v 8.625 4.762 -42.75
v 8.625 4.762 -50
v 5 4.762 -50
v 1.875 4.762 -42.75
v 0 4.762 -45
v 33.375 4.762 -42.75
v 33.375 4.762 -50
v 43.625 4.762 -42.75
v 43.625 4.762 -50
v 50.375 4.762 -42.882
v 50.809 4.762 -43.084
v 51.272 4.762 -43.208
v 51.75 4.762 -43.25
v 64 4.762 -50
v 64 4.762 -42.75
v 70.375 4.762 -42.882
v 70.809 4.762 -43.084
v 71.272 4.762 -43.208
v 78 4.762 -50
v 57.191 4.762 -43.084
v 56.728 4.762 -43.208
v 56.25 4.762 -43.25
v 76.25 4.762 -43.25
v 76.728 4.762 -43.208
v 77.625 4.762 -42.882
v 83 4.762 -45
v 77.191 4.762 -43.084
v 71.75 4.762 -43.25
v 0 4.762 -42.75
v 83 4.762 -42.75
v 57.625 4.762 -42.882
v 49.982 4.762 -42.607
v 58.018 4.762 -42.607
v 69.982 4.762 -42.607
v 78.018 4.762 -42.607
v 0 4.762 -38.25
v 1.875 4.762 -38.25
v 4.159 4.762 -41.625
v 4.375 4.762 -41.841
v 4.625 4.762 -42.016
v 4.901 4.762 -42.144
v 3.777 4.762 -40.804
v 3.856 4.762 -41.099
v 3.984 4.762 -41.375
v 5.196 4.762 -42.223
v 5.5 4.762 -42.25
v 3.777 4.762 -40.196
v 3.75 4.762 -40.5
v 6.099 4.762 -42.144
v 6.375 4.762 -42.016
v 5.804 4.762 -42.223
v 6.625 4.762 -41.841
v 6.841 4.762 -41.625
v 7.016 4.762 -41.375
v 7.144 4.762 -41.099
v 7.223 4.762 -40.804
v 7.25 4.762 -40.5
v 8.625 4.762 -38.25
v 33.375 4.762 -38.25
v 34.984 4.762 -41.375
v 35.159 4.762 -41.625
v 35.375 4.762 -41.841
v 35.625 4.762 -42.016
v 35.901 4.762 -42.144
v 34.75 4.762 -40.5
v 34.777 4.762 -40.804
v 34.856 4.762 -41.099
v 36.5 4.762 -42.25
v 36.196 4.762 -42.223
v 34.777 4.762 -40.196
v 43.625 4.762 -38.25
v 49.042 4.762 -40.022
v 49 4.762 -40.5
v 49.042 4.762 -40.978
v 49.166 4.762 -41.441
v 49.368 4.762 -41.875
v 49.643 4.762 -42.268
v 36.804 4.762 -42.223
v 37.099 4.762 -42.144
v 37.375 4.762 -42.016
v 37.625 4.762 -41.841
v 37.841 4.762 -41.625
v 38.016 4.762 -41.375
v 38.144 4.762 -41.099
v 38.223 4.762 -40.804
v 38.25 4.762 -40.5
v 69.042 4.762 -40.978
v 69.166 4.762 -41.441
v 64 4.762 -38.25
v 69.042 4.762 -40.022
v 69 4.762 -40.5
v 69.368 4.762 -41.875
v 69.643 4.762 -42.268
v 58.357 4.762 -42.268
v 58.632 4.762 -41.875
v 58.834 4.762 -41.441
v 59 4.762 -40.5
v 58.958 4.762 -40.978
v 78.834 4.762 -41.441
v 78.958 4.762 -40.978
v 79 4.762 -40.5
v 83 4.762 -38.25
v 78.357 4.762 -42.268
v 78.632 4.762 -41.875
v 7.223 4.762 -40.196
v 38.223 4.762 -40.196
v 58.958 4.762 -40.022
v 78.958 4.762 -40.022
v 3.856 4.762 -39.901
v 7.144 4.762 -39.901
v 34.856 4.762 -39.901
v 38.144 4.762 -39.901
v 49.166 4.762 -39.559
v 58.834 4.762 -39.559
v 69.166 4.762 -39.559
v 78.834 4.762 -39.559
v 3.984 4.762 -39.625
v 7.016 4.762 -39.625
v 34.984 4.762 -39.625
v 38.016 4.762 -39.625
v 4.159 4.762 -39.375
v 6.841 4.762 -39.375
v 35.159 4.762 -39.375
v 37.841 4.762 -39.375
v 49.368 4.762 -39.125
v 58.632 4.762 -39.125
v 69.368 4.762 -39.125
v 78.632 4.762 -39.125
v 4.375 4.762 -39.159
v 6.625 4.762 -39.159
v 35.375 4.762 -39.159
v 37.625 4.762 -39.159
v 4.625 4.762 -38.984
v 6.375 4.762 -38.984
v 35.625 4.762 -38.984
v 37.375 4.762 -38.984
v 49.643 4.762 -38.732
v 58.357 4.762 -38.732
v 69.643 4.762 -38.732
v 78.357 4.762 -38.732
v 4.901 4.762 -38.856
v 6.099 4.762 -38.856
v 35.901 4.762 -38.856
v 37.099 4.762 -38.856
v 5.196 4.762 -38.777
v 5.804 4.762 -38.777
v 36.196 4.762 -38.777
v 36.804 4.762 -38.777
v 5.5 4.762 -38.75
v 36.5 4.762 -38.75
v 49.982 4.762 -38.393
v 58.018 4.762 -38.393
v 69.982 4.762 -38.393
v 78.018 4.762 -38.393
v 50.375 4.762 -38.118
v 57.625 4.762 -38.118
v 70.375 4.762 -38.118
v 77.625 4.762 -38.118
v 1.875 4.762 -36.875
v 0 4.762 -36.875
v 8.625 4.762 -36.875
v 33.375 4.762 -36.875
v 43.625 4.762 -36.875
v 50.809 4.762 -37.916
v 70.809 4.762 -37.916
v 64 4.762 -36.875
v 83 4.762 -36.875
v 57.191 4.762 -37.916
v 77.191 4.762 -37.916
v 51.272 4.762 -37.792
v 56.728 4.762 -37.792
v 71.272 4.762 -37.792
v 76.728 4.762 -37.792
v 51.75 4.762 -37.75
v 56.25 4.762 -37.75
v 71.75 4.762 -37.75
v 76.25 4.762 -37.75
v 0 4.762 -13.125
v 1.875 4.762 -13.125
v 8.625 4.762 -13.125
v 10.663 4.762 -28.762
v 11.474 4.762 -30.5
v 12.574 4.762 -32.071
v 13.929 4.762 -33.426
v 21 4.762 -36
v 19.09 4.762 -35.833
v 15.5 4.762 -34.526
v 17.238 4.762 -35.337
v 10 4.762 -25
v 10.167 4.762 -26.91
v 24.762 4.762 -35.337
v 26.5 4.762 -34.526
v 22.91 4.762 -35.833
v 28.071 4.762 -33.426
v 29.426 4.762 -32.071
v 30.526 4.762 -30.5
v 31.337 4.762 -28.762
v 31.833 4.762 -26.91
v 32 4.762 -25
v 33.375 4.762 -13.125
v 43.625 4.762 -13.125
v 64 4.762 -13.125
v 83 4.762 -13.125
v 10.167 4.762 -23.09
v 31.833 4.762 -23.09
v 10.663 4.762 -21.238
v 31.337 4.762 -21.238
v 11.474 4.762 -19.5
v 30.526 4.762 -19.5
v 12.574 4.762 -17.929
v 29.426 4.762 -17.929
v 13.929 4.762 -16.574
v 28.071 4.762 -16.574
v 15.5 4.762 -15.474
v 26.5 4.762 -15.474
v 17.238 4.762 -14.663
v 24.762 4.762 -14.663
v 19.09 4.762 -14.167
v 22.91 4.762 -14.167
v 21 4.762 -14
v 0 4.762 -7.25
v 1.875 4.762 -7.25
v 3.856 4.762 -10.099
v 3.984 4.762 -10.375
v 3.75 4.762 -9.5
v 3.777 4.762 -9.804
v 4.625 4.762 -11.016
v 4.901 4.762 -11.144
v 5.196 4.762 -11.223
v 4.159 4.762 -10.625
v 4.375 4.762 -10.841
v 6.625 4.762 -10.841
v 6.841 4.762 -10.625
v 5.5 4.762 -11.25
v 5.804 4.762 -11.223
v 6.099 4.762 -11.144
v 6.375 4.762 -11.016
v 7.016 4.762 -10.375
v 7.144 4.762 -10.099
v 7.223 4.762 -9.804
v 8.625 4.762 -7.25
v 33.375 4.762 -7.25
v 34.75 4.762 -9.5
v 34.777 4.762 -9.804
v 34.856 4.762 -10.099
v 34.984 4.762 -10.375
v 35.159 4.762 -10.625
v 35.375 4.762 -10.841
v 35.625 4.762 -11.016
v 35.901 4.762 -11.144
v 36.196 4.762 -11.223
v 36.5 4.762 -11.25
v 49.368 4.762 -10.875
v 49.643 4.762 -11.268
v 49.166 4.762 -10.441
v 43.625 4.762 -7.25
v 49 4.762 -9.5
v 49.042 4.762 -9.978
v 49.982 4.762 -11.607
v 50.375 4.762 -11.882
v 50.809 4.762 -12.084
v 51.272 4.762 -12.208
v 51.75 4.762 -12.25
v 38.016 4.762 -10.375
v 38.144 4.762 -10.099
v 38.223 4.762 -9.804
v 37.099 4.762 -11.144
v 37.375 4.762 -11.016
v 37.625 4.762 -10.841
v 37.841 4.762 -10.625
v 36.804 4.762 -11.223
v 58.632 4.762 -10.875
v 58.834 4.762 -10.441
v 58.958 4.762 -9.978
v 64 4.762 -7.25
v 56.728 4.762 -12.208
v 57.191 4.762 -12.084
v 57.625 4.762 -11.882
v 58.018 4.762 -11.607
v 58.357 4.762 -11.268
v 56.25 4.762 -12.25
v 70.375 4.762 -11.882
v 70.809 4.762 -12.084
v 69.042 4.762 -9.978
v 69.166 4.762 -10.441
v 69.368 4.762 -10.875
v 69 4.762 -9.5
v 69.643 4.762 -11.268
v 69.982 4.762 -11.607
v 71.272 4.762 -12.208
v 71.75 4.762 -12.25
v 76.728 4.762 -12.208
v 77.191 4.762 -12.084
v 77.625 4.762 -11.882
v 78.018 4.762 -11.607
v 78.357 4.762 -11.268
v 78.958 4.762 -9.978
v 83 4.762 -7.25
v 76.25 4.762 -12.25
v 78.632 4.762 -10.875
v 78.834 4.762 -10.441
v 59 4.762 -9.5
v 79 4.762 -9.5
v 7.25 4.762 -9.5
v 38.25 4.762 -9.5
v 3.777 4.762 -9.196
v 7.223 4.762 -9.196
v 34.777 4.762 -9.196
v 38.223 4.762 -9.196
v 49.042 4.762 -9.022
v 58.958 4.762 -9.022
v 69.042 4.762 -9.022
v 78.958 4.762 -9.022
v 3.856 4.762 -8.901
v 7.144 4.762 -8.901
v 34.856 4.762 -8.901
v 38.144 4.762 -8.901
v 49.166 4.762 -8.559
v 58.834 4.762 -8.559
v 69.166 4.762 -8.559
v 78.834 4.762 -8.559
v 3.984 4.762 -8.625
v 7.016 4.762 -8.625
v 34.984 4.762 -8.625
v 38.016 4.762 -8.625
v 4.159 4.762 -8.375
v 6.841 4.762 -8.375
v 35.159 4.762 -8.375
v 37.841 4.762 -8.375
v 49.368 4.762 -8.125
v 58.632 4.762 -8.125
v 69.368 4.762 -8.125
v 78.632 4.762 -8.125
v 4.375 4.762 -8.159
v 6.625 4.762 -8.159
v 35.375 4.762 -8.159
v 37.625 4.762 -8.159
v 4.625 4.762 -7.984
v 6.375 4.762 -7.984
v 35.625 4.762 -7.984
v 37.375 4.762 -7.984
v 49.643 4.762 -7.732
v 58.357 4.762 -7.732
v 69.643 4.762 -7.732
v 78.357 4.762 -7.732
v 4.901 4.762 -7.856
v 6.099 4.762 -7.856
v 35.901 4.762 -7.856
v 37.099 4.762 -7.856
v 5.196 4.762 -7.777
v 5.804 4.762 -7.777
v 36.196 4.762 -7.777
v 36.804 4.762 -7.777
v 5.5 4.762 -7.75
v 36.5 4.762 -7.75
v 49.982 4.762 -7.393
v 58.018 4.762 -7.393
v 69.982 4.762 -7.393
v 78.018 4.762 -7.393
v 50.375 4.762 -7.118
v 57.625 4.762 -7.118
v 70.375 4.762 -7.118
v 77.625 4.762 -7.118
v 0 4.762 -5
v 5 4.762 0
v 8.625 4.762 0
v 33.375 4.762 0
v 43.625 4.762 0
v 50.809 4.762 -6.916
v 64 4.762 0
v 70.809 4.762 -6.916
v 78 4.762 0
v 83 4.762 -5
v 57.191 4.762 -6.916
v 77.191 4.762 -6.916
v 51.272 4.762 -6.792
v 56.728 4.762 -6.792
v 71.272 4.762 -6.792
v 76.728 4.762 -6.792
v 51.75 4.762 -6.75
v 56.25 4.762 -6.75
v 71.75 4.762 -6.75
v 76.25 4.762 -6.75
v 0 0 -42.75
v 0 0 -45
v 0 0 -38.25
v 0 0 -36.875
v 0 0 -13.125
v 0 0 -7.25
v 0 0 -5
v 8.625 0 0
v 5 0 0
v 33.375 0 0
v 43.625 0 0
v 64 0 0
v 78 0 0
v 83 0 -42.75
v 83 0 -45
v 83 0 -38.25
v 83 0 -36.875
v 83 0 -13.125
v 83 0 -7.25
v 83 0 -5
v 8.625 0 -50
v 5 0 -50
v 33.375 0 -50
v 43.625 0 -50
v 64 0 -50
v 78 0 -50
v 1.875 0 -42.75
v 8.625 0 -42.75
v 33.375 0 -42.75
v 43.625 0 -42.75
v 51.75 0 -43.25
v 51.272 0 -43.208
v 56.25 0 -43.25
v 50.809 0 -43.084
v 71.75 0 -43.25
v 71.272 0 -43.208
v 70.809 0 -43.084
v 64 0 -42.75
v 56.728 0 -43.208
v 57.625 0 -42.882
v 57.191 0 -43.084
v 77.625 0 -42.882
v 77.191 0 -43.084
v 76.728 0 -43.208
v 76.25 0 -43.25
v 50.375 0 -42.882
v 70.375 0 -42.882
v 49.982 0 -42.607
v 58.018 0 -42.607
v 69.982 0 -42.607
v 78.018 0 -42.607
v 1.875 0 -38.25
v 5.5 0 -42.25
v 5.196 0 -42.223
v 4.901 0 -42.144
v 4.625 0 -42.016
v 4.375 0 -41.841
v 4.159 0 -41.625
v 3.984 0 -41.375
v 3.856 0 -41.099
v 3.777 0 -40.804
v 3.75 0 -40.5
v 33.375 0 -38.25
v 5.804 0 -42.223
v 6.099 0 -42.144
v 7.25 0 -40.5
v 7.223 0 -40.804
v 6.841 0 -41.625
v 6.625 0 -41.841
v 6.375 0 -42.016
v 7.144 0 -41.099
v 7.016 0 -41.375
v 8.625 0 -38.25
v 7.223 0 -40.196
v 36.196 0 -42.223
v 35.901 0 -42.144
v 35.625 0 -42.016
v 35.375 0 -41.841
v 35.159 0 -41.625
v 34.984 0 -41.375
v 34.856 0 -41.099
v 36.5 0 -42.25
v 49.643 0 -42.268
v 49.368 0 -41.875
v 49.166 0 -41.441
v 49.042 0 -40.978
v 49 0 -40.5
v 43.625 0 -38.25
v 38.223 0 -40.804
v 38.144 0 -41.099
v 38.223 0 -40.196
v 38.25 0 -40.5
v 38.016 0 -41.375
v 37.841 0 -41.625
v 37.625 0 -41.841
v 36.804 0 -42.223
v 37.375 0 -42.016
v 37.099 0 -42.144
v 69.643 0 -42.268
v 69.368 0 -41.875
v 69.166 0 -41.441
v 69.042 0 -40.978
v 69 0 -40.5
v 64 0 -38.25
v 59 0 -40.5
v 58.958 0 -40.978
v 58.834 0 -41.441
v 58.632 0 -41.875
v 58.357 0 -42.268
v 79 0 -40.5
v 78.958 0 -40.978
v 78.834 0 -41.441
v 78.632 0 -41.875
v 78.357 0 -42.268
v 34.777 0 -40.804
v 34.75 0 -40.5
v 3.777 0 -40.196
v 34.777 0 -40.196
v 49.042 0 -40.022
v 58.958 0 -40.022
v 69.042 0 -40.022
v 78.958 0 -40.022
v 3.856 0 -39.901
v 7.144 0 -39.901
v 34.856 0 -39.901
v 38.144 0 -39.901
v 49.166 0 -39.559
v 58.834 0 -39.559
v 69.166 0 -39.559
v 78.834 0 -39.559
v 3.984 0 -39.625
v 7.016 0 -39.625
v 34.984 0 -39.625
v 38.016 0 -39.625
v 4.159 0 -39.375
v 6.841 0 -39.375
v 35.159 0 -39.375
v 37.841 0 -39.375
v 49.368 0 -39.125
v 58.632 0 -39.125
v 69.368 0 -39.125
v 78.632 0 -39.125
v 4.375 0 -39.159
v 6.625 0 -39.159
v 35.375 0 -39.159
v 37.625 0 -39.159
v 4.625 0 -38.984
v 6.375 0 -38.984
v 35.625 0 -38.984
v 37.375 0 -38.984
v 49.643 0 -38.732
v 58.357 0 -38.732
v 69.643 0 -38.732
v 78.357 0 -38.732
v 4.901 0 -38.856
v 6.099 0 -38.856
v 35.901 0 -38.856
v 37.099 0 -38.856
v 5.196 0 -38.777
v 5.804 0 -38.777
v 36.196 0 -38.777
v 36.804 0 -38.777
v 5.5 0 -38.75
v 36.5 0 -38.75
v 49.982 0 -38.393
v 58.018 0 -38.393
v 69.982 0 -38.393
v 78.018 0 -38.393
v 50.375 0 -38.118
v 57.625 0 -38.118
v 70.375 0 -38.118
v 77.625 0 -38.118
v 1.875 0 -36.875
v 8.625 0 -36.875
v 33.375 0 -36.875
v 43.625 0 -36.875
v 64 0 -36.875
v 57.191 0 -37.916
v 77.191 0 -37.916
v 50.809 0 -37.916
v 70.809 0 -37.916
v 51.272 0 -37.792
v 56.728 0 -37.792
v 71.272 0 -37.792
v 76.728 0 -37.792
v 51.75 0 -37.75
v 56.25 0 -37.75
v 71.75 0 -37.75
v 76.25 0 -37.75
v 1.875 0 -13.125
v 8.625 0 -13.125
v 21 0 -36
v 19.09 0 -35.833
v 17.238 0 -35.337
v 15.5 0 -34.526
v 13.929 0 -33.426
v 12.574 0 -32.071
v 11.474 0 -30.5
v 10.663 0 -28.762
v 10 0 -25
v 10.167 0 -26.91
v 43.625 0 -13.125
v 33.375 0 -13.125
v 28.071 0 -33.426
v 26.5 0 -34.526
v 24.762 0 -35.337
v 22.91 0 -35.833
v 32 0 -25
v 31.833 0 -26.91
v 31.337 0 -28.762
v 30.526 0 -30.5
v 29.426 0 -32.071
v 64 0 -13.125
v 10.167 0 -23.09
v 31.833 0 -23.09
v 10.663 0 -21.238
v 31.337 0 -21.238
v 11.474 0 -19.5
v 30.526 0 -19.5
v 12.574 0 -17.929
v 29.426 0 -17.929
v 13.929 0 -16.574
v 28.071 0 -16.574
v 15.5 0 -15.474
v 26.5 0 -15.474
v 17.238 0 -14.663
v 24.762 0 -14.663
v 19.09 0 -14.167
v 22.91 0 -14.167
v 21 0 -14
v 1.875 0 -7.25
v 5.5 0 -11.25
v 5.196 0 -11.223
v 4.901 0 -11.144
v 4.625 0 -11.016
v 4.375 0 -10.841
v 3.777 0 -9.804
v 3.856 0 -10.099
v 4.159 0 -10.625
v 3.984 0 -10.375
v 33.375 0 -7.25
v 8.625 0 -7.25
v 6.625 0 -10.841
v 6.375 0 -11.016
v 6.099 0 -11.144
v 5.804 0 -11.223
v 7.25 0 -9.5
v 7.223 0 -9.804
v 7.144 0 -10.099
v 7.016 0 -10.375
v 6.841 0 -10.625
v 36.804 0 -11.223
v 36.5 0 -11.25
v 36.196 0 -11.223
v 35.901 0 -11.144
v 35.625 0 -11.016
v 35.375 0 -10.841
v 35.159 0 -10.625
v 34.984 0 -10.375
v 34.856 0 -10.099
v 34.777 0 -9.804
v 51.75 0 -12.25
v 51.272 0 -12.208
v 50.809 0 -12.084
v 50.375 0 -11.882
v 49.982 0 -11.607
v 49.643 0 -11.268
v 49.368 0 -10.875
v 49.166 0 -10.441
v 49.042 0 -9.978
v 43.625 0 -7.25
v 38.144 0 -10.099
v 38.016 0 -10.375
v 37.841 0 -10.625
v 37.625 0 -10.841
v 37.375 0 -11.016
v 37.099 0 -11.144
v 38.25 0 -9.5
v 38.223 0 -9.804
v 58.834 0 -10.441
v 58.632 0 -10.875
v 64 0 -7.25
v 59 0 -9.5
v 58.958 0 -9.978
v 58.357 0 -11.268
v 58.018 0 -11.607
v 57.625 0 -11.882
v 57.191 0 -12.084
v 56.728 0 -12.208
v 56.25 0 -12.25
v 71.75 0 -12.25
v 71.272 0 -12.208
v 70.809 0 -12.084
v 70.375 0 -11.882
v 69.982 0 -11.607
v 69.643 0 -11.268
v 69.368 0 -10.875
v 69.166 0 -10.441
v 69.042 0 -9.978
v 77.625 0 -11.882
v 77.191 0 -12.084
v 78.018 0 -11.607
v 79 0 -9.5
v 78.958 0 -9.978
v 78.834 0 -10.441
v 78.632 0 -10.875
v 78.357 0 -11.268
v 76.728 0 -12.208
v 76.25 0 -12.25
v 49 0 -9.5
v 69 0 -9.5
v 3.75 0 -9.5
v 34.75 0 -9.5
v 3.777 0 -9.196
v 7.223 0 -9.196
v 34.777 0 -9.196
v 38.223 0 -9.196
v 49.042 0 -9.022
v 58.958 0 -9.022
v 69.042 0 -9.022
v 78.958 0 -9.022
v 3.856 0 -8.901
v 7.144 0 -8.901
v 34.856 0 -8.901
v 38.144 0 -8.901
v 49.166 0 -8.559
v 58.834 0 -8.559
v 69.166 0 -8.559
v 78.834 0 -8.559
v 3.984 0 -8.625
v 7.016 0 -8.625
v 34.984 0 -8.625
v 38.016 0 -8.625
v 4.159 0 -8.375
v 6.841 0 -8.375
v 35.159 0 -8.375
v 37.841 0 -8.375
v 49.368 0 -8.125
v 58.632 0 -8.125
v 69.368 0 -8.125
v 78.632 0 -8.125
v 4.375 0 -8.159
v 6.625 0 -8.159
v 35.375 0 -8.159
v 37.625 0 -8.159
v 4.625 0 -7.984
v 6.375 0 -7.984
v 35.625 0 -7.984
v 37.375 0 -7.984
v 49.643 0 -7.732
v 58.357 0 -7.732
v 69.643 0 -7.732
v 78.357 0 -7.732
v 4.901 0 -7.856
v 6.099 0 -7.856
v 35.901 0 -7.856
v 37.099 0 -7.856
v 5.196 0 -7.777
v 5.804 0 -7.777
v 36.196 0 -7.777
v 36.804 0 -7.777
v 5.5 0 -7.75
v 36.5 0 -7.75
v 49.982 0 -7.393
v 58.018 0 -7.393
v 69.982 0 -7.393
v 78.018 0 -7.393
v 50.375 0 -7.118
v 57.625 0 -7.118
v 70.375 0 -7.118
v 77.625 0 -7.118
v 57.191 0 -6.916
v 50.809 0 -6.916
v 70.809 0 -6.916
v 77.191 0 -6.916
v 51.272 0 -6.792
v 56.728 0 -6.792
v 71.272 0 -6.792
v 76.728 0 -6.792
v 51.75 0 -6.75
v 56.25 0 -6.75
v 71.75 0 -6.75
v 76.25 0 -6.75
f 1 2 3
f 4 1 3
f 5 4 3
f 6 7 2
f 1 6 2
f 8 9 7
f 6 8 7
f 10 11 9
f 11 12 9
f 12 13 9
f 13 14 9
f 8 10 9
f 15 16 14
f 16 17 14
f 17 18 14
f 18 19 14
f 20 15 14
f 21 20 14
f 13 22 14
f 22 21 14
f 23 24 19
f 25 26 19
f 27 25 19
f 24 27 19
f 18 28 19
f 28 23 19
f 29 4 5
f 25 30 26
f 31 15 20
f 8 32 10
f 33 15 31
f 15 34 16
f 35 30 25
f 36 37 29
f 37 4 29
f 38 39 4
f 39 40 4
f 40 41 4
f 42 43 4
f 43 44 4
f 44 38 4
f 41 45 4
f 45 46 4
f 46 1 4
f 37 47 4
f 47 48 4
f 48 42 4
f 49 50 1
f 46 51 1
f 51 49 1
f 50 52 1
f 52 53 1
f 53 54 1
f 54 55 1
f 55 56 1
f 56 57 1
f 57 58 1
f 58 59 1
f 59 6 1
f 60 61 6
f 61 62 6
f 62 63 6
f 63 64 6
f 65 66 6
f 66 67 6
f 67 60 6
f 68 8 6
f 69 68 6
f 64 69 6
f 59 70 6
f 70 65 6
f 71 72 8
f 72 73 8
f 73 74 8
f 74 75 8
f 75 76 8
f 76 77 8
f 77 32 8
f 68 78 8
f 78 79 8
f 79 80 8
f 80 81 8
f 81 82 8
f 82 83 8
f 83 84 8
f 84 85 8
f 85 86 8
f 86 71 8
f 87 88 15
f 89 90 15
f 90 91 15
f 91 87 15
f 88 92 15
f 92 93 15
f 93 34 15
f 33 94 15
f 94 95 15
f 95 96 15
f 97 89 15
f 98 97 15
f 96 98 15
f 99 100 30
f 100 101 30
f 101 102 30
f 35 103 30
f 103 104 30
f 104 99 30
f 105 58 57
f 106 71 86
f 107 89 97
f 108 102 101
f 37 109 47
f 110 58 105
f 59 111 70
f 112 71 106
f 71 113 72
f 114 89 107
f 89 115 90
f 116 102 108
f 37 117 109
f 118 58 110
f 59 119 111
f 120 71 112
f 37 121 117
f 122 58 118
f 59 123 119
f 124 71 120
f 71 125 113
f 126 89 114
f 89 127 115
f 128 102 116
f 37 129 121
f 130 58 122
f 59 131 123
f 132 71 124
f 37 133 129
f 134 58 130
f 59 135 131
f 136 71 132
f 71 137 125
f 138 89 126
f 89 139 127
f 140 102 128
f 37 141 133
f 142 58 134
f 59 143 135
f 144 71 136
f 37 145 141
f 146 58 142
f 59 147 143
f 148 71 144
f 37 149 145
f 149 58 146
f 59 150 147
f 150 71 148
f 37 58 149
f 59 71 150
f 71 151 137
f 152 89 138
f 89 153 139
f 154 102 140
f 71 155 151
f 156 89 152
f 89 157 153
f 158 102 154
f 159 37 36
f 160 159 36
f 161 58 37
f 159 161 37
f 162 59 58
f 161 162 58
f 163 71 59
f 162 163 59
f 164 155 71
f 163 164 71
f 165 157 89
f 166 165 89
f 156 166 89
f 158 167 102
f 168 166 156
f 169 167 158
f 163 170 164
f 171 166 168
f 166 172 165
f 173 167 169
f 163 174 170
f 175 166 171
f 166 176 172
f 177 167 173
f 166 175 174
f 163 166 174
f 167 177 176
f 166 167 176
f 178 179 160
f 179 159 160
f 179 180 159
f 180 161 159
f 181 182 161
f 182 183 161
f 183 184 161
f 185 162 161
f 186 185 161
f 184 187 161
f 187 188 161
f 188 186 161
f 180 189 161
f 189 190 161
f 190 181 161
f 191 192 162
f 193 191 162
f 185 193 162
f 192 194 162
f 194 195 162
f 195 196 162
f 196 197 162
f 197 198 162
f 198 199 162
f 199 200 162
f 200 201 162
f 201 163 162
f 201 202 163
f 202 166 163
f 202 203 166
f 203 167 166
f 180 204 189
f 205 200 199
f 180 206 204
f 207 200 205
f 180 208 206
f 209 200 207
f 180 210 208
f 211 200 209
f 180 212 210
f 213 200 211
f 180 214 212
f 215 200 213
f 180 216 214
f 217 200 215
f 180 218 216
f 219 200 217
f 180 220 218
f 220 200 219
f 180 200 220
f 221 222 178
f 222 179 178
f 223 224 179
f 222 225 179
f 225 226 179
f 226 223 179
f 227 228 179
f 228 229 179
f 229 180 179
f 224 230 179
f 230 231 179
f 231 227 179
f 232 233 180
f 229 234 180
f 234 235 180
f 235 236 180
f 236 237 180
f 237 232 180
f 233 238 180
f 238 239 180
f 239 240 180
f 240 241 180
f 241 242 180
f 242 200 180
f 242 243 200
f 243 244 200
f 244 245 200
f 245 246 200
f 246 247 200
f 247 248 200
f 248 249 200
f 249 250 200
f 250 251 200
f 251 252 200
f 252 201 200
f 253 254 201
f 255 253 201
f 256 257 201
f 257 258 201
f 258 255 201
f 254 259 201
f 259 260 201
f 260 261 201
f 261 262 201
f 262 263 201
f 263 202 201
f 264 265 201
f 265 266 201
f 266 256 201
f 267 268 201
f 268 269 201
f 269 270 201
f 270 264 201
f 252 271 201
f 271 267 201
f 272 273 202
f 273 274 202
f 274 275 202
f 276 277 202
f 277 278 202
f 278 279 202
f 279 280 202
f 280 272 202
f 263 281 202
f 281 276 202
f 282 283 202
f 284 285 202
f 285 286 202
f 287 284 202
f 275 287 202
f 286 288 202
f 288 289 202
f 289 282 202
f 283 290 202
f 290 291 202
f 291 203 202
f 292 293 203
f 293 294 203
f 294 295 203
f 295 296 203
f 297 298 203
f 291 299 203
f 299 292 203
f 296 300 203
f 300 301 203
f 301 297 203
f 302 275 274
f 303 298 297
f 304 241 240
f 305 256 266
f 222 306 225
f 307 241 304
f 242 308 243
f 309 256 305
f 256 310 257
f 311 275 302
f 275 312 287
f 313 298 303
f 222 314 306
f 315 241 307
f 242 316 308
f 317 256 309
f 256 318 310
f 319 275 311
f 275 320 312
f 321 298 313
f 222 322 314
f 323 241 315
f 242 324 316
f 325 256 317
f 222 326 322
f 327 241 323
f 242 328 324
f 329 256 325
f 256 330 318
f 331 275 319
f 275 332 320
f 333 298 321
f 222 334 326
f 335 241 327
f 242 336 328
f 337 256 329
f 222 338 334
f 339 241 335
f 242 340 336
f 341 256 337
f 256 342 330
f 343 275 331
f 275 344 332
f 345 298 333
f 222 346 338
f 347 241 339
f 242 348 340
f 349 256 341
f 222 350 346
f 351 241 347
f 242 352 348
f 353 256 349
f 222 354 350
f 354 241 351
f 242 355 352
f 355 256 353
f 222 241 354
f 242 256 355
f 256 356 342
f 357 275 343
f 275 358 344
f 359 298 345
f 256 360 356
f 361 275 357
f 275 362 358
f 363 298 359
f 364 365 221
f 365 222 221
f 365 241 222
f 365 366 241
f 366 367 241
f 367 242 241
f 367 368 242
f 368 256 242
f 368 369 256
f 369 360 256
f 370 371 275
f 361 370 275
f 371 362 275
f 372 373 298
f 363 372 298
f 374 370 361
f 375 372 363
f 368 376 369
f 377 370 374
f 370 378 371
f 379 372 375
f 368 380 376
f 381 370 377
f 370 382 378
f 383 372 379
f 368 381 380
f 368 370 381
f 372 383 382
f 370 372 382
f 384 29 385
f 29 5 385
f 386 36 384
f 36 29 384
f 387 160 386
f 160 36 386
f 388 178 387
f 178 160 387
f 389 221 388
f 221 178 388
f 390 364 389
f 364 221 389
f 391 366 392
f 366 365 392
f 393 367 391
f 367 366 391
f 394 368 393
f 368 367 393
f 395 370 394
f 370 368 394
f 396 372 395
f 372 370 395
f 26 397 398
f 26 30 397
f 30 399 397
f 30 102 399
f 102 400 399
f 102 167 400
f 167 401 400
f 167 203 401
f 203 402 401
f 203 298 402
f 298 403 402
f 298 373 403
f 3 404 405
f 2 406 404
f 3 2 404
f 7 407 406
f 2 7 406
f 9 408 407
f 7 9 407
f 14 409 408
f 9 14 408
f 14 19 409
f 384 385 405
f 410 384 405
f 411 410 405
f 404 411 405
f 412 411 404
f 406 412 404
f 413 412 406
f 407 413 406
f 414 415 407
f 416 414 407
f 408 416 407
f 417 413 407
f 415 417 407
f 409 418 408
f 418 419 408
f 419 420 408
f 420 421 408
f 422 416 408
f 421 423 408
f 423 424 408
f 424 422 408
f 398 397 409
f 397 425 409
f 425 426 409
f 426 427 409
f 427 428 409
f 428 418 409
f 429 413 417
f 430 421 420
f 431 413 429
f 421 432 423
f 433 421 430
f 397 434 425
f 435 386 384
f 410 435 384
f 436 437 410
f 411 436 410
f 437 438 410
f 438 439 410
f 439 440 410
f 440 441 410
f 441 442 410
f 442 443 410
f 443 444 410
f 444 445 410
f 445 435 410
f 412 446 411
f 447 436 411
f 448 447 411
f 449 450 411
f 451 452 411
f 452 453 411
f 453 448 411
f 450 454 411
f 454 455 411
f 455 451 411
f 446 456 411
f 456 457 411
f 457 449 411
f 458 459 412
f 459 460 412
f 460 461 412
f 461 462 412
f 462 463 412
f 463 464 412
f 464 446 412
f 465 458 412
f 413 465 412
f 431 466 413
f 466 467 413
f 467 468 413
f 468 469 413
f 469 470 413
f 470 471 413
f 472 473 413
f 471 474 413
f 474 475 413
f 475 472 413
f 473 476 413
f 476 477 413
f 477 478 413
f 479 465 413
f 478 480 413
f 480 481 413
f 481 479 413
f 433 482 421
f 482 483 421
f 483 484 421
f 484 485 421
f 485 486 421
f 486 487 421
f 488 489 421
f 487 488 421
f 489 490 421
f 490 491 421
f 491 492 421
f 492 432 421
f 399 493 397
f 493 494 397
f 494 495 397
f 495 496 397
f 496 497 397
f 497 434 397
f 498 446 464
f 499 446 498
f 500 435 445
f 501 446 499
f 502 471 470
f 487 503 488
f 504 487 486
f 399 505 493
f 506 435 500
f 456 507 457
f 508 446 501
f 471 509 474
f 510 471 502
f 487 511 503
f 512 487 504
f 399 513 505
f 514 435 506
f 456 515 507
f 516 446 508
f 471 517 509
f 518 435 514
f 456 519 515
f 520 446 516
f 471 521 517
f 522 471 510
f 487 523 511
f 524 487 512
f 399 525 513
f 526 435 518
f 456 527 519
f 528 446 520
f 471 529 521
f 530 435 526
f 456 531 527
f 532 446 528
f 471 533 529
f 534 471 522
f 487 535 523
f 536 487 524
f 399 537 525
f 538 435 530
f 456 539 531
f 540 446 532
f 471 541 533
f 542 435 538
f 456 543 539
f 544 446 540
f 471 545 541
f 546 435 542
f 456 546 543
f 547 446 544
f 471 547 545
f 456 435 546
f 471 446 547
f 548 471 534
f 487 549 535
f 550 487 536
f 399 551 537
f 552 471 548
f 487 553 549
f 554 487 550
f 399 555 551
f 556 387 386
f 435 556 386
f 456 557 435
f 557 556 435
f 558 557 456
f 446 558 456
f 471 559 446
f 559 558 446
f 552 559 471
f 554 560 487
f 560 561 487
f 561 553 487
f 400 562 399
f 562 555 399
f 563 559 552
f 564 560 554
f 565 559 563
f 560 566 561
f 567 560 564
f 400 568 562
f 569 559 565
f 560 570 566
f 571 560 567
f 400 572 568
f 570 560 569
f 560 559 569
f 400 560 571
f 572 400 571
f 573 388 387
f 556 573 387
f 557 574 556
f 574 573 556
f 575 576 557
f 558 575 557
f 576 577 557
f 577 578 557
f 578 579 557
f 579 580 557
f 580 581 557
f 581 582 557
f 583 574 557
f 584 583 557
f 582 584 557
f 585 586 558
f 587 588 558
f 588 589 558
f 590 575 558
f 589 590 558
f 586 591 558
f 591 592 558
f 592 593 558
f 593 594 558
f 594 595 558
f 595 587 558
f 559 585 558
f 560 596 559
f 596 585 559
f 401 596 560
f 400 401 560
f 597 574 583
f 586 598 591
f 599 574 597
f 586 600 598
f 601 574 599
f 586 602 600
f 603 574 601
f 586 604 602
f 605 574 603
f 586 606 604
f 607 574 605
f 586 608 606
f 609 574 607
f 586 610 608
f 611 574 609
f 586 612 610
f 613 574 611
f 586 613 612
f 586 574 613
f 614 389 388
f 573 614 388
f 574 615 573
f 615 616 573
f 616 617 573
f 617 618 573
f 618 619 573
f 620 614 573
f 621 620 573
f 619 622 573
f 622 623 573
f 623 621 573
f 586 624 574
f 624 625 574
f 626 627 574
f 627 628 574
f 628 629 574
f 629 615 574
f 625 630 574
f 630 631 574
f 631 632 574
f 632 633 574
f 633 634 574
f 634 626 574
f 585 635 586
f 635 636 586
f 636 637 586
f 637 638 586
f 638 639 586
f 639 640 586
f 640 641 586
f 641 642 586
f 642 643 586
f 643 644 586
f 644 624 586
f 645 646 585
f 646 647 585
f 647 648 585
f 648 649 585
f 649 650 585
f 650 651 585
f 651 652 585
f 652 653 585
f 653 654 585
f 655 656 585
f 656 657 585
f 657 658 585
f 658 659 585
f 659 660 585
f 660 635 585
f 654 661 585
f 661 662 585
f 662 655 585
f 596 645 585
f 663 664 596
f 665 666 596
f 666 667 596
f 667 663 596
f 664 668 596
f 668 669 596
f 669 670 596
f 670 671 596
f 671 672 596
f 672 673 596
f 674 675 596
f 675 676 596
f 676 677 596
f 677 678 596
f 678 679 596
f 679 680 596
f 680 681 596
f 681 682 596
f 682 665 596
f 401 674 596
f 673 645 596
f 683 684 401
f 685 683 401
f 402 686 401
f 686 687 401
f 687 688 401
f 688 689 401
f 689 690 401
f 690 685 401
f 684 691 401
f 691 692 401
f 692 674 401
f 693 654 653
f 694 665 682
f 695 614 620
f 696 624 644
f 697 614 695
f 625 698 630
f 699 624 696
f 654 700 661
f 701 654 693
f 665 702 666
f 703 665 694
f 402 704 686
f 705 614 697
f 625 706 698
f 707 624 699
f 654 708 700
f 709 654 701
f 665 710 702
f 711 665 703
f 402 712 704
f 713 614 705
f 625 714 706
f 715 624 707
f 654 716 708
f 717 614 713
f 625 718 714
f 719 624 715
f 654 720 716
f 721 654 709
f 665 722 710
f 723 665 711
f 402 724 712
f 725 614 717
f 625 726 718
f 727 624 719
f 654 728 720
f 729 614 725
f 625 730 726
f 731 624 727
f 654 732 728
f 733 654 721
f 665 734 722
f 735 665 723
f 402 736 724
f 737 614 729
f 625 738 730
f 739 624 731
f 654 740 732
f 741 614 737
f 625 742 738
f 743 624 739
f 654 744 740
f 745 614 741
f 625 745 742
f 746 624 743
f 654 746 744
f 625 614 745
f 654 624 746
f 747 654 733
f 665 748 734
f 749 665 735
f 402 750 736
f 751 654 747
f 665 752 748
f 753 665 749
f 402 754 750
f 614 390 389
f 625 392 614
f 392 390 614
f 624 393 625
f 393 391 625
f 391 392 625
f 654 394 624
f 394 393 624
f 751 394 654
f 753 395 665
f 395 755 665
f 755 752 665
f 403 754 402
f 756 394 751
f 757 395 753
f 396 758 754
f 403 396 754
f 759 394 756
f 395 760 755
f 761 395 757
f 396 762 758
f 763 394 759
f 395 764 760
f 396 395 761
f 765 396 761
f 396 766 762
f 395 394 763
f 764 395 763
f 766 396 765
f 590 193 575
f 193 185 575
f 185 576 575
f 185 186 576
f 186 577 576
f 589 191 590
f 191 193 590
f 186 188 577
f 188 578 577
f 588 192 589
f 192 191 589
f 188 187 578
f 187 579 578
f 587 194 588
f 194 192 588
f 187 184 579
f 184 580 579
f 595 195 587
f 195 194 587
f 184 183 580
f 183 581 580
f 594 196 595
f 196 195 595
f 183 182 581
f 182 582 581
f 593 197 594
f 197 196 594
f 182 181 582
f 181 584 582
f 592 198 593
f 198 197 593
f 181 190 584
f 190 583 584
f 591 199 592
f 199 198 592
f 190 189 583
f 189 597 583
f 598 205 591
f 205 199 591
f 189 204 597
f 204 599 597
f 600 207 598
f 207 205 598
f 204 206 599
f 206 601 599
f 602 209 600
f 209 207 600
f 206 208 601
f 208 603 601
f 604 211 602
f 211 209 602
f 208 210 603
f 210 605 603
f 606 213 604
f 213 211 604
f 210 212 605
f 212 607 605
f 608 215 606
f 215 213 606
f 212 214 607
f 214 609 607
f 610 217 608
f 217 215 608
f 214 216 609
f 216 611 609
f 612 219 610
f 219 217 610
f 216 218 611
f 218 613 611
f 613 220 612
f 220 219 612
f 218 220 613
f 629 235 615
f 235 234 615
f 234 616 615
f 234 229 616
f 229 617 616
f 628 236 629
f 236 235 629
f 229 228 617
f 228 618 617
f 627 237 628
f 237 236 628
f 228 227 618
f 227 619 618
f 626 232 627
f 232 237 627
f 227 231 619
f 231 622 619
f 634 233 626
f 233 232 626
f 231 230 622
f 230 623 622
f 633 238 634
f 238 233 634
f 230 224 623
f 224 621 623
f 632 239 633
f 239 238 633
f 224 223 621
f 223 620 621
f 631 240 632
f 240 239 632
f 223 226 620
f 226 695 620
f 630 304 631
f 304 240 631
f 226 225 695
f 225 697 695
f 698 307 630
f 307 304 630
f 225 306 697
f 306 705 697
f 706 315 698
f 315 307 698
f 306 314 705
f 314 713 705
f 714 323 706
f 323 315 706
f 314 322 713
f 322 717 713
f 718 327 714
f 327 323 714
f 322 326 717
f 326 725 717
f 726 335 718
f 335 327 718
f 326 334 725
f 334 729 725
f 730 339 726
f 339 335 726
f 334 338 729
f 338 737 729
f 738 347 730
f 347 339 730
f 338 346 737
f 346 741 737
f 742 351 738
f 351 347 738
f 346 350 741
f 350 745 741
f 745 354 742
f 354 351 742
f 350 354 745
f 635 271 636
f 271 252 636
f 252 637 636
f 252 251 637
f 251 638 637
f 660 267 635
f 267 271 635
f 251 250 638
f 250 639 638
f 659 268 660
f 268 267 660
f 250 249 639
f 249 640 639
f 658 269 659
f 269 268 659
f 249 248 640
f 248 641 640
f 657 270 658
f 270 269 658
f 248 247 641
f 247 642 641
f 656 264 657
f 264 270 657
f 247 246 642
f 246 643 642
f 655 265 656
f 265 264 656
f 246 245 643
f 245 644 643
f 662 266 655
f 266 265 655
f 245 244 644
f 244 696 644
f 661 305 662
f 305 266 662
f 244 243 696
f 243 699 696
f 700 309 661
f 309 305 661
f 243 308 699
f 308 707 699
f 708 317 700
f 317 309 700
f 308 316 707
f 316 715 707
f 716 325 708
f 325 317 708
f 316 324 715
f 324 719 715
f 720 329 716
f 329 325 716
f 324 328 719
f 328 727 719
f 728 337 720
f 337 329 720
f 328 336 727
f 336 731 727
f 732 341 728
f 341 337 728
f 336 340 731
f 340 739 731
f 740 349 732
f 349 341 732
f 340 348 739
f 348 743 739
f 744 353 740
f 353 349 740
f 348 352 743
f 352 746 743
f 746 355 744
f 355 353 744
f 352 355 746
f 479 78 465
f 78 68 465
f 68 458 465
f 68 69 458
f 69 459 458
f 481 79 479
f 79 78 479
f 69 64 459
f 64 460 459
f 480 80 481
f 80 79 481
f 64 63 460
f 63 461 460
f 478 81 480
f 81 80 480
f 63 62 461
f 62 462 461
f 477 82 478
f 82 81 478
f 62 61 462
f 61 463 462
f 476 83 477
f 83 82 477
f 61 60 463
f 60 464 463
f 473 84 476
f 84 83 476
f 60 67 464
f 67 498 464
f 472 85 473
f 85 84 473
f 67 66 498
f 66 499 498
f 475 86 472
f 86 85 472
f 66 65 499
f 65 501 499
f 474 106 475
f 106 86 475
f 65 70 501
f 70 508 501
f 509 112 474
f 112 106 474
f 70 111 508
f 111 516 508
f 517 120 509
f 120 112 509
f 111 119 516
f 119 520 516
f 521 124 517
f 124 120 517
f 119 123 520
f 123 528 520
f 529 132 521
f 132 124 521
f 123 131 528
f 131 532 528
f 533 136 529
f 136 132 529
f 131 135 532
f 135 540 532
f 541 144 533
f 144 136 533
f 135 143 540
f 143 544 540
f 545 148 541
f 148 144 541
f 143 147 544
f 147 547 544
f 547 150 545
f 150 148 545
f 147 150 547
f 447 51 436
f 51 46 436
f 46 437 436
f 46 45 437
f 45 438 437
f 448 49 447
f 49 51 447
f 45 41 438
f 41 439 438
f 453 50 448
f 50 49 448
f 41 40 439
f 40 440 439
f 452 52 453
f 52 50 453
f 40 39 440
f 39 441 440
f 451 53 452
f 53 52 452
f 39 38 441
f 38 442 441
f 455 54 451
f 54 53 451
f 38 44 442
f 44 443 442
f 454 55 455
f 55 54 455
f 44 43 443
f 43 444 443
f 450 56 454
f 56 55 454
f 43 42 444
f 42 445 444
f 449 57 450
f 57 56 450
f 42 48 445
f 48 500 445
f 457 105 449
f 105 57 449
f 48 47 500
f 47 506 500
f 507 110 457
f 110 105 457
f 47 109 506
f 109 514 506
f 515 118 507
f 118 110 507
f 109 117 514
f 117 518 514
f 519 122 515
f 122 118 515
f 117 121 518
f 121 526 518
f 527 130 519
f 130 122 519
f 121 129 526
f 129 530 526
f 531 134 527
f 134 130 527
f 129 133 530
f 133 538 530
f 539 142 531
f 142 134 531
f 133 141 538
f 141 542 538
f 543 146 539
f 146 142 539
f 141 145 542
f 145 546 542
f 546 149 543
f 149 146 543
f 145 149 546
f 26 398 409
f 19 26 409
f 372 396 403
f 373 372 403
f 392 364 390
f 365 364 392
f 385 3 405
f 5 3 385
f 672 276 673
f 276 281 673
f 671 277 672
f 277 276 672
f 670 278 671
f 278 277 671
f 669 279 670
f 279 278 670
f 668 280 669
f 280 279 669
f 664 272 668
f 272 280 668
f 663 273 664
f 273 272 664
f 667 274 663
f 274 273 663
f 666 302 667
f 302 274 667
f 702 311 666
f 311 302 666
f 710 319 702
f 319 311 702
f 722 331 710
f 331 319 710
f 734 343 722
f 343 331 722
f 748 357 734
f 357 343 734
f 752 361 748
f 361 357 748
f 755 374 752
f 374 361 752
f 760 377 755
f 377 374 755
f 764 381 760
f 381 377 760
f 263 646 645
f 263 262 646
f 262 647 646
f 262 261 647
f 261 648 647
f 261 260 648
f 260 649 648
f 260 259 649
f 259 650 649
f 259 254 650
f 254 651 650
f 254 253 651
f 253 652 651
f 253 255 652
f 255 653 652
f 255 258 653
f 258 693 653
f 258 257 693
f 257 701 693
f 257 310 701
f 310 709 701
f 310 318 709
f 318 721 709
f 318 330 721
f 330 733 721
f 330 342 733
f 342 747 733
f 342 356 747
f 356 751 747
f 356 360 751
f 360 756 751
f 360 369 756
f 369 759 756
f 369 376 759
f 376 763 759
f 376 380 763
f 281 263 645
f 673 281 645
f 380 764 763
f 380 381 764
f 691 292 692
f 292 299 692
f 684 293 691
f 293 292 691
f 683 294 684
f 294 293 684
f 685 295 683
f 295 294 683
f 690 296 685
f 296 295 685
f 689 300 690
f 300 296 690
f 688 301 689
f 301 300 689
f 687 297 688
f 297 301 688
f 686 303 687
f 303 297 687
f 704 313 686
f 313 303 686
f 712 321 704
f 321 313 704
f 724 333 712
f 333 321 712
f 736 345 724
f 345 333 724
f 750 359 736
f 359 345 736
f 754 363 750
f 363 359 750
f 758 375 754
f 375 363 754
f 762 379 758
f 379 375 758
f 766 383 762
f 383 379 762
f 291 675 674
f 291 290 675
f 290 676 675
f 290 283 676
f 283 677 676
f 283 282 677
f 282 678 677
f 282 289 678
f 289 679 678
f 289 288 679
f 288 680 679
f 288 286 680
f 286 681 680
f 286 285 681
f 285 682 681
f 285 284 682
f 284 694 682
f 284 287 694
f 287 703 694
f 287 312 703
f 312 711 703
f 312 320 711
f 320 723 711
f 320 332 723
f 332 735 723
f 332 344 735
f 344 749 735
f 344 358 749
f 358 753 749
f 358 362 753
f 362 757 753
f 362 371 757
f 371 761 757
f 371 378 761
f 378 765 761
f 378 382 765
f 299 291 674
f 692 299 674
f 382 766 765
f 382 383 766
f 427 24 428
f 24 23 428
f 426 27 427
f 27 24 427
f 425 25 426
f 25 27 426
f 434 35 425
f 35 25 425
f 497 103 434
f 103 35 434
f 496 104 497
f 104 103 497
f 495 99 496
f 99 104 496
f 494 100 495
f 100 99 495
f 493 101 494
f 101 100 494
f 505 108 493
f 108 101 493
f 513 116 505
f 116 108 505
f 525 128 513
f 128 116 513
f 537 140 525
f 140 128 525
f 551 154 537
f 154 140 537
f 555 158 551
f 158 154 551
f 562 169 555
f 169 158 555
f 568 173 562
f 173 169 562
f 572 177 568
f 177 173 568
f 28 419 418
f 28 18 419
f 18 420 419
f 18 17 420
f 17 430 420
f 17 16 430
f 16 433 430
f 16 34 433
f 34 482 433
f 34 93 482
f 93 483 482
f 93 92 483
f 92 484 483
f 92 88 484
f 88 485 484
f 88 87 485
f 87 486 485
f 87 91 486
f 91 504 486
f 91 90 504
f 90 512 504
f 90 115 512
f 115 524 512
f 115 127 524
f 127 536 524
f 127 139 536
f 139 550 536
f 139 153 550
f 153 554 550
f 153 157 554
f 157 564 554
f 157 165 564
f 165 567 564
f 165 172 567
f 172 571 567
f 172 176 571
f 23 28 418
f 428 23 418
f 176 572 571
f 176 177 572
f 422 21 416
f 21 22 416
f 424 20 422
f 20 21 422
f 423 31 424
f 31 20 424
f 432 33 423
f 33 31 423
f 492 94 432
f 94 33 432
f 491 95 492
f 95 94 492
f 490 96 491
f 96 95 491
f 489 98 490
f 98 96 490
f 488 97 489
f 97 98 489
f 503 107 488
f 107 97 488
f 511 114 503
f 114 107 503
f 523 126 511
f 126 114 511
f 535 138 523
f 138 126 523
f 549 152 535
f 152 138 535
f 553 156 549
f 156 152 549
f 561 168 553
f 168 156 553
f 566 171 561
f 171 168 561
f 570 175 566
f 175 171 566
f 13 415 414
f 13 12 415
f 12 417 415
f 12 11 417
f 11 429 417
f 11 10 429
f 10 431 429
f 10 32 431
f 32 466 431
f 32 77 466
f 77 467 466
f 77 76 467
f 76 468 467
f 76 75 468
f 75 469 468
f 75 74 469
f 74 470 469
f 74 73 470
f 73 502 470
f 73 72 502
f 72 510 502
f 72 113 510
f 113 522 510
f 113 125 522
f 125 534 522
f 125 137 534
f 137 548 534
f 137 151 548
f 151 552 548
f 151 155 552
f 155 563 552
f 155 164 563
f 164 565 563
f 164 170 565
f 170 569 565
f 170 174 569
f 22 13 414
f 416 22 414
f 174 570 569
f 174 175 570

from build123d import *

# Parameters (mm, degrees)
SKETCH1_W                = 83
SKETCH1_H                = 50
BOSS_EXTRUDE1_DEPTH      = 4.7625
SKETCH2_R                = 11
SKETCH2_R_2              = 1.75
CUT_EXTRUDE1_DEPTH       = 98.013820697
CHAMFER1_SIZE            = 5
M5_CLEARANCE_SLOT1_DEPTH = 4.7625


# Read off the part's stored shape, not the designer's step: M5 Clearance Slot1
with BuildPart() as part:
    # Sketch1 → Boss-Extrude1 (new body)
    with BuildSketch(Plane(origin=(0, 0, 0), x_dir=(1, 0, 0), z_dir=(0, 1, 0))):
        with Locations((41.5, 25)):
            Rectangle(SKETCH1_W, SKETCH1_H)
    extrude(amount=BOSS_EXTRUDE1_DEPTH)

    # Sketch2 → Cut-Extrude1 (cut, through all)
    with BuildSketch(Plane(origin=(0, 4.7625, 0), x_dir=(1, 0, 0), z_dir=(0, 1, 0))):
        with Locations(Location((21, 25, 0), (0, 0, 270))):
            Circle(SKETCH2_R)
        with Locations(Location((5.5, 9.5, 0), (0, 0, 270))):
            Circle(SKETCH2_R_2)
        with Locations(Location((36.5, 9.5, 0), (0, 0, 270))):
            Circle(SKETCH2_R_2)
        with Locations(Location((36.5, 40.5, 0), (0, 0, 270))):
            Circle(SKETCH2_R_2)
        with Locations(Location((5.5, 40.5, 0), (0, 0, 270))):
            Circle(SKETCH2_R_2)
    extrude(amount=-CUT_EXTRUDE1_DEPTH, mode=Mode.SUBTRACT)

    # Chamfer1
    chamfer1_edges = [part.edges().sort_by_distance(p)[0] for p in [
        (0, 2.38125, -50),
        (83, 2.38125, -50),
        (83, 2.38125, 0),
        (0, 2.38125, 0),
    ]]
    chamfer(chamfer1_edges, length=CHAMFER1_SIZE)

    # M5 Clearance Slot1 outline → M5 Clearance Slot1 (cut)
    with BuildSketch(Plane(origin=(0, 0, 0), x_dir=(1, 0, 0), z_dir=(0, 1, 0))):
        with BuildLine():
            Line((51.75, 6.75), (56.25, 6.75))
            ThreePointArc((56.25, 6.75), (59, 9.5), (56.25, 12.25))
            Line((56.25, 12.25), (51.75, 12.25))
            ThreePointArc((51.75, 12.25), (49, 9.5), (51.75, 6.75))
        make_face()
        with BuildLine():
            ThreePointArc((76.25, 6.75), (79, 9.5), (76.25, 12.25))
            Line((76.25, 12.25), (71.75, 12.25))
            ThreePointArc((71.75, 12.25), (69, 9.5), (71.75, 6.75))
            Line((71.75, 6.75), (76.25, 6.75))
        make_face()
        with BuildLine():
            Line((71.75, 37.75), (76.25, 37.75))
            ThreePointArc((76.25, 37.75), (79, 40.5), (76.25, 43.25))
            Line((76.25, 43.25), (71.75, 43.25))
            ThreePointArc((71.75, 43.25), (69, 40.5), (71.75, 37.75))
        make_face()
        with BuildLine():
            ThreePointArc((56.25, 37.75), (59, 40.5), (56.25, 43.25))
            Line((56.25, 43.25), (51.75, 43.25))
            ThreePointArc((51.75, 43.25), (49, 40.5), (51.75, 37.75))
            Line((51.75, 37.75), (56.25, 37.75))
        make_face()
    extrude(amount=M5_CLEARANCE_SLOT1_DEPTH, mode=Mode.SUBTRACT)


solid = part.part
